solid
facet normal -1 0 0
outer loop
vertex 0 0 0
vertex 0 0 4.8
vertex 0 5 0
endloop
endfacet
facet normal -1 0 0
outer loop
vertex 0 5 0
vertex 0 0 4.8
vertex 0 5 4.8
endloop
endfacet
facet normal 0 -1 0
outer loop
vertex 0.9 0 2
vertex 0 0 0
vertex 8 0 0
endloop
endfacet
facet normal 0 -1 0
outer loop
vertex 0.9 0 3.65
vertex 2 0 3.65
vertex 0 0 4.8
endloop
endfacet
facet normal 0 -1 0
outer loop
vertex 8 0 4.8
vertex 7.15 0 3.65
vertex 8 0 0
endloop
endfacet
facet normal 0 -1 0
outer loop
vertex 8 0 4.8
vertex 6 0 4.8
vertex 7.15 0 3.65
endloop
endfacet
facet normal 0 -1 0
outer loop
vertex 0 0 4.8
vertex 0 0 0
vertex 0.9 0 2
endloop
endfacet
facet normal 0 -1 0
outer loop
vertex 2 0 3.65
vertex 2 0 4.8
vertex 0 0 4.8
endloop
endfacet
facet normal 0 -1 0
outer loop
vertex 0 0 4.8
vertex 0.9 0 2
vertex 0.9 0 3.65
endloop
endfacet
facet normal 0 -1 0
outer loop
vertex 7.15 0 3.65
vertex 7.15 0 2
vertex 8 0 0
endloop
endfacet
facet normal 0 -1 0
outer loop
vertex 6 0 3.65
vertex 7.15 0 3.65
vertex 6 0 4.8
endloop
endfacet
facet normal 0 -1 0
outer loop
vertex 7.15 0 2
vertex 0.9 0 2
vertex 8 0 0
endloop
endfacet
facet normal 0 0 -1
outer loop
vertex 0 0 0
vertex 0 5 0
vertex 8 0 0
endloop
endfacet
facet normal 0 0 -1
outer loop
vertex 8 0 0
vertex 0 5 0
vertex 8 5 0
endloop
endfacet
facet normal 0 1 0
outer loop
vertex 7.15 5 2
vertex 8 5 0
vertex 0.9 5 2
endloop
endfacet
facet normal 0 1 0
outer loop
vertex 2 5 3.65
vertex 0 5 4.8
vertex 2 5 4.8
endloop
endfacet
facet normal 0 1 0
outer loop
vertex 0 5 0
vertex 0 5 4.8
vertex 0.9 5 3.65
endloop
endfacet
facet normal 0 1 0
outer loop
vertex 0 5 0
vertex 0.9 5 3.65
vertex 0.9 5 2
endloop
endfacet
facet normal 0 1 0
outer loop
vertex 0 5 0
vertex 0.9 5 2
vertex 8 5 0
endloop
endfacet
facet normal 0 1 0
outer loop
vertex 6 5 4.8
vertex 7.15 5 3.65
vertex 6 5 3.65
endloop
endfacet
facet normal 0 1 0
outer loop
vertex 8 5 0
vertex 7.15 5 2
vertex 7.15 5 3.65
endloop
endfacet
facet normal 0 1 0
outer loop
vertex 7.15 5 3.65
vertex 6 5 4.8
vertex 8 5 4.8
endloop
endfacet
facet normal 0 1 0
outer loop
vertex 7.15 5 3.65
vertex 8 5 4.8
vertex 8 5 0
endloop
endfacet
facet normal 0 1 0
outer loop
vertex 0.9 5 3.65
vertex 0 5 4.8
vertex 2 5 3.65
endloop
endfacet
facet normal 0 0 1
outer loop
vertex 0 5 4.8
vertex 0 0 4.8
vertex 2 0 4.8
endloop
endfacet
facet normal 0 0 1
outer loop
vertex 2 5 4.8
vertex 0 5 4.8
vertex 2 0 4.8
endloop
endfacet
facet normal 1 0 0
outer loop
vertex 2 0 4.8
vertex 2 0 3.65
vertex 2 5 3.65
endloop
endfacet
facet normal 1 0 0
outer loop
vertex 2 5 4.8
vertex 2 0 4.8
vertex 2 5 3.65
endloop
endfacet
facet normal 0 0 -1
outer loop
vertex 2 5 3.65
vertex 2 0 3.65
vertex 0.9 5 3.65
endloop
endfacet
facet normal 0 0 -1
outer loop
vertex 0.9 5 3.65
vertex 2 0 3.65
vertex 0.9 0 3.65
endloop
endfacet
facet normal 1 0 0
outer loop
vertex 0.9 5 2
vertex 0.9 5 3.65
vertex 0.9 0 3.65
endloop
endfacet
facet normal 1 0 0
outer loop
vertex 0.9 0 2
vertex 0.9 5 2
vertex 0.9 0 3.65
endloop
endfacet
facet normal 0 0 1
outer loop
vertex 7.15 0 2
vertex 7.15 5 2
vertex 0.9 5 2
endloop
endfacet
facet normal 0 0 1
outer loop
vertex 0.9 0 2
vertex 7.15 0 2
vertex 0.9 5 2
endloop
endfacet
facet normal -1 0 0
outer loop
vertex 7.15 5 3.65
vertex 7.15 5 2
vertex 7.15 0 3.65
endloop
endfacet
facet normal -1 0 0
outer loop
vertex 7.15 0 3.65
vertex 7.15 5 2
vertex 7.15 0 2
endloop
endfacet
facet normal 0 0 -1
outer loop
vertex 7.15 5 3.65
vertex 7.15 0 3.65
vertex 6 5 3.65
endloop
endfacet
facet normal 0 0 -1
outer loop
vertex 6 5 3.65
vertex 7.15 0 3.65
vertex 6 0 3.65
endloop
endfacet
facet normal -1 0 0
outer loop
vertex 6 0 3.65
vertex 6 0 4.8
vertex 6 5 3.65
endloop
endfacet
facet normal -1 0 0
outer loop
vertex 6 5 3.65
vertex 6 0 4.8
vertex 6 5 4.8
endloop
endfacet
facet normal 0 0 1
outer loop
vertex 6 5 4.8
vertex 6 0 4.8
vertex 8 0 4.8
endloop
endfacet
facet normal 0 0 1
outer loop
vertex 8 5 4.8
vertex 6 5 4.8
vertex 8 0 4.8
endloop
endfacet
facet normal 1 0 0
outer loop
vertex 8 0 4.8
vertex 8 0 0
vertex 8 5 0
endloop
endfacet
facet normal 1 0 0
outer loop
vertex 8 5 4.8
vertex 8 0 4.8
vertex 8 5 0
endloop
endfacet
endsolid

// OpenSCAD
union(){
	
	difference(){
		resize([8,5,3.65])
		cube(2);
		translate([.9,0,2])
		resize([6.25,5,3.65])
		cube(2);
	}//end difference
	translate([0,0,3.65])
	resize([2,5,1.15])
	cube(2);

	translate([6,0,3.65])
	resize([2,5,1.15])
	cube(2);
}//end union
